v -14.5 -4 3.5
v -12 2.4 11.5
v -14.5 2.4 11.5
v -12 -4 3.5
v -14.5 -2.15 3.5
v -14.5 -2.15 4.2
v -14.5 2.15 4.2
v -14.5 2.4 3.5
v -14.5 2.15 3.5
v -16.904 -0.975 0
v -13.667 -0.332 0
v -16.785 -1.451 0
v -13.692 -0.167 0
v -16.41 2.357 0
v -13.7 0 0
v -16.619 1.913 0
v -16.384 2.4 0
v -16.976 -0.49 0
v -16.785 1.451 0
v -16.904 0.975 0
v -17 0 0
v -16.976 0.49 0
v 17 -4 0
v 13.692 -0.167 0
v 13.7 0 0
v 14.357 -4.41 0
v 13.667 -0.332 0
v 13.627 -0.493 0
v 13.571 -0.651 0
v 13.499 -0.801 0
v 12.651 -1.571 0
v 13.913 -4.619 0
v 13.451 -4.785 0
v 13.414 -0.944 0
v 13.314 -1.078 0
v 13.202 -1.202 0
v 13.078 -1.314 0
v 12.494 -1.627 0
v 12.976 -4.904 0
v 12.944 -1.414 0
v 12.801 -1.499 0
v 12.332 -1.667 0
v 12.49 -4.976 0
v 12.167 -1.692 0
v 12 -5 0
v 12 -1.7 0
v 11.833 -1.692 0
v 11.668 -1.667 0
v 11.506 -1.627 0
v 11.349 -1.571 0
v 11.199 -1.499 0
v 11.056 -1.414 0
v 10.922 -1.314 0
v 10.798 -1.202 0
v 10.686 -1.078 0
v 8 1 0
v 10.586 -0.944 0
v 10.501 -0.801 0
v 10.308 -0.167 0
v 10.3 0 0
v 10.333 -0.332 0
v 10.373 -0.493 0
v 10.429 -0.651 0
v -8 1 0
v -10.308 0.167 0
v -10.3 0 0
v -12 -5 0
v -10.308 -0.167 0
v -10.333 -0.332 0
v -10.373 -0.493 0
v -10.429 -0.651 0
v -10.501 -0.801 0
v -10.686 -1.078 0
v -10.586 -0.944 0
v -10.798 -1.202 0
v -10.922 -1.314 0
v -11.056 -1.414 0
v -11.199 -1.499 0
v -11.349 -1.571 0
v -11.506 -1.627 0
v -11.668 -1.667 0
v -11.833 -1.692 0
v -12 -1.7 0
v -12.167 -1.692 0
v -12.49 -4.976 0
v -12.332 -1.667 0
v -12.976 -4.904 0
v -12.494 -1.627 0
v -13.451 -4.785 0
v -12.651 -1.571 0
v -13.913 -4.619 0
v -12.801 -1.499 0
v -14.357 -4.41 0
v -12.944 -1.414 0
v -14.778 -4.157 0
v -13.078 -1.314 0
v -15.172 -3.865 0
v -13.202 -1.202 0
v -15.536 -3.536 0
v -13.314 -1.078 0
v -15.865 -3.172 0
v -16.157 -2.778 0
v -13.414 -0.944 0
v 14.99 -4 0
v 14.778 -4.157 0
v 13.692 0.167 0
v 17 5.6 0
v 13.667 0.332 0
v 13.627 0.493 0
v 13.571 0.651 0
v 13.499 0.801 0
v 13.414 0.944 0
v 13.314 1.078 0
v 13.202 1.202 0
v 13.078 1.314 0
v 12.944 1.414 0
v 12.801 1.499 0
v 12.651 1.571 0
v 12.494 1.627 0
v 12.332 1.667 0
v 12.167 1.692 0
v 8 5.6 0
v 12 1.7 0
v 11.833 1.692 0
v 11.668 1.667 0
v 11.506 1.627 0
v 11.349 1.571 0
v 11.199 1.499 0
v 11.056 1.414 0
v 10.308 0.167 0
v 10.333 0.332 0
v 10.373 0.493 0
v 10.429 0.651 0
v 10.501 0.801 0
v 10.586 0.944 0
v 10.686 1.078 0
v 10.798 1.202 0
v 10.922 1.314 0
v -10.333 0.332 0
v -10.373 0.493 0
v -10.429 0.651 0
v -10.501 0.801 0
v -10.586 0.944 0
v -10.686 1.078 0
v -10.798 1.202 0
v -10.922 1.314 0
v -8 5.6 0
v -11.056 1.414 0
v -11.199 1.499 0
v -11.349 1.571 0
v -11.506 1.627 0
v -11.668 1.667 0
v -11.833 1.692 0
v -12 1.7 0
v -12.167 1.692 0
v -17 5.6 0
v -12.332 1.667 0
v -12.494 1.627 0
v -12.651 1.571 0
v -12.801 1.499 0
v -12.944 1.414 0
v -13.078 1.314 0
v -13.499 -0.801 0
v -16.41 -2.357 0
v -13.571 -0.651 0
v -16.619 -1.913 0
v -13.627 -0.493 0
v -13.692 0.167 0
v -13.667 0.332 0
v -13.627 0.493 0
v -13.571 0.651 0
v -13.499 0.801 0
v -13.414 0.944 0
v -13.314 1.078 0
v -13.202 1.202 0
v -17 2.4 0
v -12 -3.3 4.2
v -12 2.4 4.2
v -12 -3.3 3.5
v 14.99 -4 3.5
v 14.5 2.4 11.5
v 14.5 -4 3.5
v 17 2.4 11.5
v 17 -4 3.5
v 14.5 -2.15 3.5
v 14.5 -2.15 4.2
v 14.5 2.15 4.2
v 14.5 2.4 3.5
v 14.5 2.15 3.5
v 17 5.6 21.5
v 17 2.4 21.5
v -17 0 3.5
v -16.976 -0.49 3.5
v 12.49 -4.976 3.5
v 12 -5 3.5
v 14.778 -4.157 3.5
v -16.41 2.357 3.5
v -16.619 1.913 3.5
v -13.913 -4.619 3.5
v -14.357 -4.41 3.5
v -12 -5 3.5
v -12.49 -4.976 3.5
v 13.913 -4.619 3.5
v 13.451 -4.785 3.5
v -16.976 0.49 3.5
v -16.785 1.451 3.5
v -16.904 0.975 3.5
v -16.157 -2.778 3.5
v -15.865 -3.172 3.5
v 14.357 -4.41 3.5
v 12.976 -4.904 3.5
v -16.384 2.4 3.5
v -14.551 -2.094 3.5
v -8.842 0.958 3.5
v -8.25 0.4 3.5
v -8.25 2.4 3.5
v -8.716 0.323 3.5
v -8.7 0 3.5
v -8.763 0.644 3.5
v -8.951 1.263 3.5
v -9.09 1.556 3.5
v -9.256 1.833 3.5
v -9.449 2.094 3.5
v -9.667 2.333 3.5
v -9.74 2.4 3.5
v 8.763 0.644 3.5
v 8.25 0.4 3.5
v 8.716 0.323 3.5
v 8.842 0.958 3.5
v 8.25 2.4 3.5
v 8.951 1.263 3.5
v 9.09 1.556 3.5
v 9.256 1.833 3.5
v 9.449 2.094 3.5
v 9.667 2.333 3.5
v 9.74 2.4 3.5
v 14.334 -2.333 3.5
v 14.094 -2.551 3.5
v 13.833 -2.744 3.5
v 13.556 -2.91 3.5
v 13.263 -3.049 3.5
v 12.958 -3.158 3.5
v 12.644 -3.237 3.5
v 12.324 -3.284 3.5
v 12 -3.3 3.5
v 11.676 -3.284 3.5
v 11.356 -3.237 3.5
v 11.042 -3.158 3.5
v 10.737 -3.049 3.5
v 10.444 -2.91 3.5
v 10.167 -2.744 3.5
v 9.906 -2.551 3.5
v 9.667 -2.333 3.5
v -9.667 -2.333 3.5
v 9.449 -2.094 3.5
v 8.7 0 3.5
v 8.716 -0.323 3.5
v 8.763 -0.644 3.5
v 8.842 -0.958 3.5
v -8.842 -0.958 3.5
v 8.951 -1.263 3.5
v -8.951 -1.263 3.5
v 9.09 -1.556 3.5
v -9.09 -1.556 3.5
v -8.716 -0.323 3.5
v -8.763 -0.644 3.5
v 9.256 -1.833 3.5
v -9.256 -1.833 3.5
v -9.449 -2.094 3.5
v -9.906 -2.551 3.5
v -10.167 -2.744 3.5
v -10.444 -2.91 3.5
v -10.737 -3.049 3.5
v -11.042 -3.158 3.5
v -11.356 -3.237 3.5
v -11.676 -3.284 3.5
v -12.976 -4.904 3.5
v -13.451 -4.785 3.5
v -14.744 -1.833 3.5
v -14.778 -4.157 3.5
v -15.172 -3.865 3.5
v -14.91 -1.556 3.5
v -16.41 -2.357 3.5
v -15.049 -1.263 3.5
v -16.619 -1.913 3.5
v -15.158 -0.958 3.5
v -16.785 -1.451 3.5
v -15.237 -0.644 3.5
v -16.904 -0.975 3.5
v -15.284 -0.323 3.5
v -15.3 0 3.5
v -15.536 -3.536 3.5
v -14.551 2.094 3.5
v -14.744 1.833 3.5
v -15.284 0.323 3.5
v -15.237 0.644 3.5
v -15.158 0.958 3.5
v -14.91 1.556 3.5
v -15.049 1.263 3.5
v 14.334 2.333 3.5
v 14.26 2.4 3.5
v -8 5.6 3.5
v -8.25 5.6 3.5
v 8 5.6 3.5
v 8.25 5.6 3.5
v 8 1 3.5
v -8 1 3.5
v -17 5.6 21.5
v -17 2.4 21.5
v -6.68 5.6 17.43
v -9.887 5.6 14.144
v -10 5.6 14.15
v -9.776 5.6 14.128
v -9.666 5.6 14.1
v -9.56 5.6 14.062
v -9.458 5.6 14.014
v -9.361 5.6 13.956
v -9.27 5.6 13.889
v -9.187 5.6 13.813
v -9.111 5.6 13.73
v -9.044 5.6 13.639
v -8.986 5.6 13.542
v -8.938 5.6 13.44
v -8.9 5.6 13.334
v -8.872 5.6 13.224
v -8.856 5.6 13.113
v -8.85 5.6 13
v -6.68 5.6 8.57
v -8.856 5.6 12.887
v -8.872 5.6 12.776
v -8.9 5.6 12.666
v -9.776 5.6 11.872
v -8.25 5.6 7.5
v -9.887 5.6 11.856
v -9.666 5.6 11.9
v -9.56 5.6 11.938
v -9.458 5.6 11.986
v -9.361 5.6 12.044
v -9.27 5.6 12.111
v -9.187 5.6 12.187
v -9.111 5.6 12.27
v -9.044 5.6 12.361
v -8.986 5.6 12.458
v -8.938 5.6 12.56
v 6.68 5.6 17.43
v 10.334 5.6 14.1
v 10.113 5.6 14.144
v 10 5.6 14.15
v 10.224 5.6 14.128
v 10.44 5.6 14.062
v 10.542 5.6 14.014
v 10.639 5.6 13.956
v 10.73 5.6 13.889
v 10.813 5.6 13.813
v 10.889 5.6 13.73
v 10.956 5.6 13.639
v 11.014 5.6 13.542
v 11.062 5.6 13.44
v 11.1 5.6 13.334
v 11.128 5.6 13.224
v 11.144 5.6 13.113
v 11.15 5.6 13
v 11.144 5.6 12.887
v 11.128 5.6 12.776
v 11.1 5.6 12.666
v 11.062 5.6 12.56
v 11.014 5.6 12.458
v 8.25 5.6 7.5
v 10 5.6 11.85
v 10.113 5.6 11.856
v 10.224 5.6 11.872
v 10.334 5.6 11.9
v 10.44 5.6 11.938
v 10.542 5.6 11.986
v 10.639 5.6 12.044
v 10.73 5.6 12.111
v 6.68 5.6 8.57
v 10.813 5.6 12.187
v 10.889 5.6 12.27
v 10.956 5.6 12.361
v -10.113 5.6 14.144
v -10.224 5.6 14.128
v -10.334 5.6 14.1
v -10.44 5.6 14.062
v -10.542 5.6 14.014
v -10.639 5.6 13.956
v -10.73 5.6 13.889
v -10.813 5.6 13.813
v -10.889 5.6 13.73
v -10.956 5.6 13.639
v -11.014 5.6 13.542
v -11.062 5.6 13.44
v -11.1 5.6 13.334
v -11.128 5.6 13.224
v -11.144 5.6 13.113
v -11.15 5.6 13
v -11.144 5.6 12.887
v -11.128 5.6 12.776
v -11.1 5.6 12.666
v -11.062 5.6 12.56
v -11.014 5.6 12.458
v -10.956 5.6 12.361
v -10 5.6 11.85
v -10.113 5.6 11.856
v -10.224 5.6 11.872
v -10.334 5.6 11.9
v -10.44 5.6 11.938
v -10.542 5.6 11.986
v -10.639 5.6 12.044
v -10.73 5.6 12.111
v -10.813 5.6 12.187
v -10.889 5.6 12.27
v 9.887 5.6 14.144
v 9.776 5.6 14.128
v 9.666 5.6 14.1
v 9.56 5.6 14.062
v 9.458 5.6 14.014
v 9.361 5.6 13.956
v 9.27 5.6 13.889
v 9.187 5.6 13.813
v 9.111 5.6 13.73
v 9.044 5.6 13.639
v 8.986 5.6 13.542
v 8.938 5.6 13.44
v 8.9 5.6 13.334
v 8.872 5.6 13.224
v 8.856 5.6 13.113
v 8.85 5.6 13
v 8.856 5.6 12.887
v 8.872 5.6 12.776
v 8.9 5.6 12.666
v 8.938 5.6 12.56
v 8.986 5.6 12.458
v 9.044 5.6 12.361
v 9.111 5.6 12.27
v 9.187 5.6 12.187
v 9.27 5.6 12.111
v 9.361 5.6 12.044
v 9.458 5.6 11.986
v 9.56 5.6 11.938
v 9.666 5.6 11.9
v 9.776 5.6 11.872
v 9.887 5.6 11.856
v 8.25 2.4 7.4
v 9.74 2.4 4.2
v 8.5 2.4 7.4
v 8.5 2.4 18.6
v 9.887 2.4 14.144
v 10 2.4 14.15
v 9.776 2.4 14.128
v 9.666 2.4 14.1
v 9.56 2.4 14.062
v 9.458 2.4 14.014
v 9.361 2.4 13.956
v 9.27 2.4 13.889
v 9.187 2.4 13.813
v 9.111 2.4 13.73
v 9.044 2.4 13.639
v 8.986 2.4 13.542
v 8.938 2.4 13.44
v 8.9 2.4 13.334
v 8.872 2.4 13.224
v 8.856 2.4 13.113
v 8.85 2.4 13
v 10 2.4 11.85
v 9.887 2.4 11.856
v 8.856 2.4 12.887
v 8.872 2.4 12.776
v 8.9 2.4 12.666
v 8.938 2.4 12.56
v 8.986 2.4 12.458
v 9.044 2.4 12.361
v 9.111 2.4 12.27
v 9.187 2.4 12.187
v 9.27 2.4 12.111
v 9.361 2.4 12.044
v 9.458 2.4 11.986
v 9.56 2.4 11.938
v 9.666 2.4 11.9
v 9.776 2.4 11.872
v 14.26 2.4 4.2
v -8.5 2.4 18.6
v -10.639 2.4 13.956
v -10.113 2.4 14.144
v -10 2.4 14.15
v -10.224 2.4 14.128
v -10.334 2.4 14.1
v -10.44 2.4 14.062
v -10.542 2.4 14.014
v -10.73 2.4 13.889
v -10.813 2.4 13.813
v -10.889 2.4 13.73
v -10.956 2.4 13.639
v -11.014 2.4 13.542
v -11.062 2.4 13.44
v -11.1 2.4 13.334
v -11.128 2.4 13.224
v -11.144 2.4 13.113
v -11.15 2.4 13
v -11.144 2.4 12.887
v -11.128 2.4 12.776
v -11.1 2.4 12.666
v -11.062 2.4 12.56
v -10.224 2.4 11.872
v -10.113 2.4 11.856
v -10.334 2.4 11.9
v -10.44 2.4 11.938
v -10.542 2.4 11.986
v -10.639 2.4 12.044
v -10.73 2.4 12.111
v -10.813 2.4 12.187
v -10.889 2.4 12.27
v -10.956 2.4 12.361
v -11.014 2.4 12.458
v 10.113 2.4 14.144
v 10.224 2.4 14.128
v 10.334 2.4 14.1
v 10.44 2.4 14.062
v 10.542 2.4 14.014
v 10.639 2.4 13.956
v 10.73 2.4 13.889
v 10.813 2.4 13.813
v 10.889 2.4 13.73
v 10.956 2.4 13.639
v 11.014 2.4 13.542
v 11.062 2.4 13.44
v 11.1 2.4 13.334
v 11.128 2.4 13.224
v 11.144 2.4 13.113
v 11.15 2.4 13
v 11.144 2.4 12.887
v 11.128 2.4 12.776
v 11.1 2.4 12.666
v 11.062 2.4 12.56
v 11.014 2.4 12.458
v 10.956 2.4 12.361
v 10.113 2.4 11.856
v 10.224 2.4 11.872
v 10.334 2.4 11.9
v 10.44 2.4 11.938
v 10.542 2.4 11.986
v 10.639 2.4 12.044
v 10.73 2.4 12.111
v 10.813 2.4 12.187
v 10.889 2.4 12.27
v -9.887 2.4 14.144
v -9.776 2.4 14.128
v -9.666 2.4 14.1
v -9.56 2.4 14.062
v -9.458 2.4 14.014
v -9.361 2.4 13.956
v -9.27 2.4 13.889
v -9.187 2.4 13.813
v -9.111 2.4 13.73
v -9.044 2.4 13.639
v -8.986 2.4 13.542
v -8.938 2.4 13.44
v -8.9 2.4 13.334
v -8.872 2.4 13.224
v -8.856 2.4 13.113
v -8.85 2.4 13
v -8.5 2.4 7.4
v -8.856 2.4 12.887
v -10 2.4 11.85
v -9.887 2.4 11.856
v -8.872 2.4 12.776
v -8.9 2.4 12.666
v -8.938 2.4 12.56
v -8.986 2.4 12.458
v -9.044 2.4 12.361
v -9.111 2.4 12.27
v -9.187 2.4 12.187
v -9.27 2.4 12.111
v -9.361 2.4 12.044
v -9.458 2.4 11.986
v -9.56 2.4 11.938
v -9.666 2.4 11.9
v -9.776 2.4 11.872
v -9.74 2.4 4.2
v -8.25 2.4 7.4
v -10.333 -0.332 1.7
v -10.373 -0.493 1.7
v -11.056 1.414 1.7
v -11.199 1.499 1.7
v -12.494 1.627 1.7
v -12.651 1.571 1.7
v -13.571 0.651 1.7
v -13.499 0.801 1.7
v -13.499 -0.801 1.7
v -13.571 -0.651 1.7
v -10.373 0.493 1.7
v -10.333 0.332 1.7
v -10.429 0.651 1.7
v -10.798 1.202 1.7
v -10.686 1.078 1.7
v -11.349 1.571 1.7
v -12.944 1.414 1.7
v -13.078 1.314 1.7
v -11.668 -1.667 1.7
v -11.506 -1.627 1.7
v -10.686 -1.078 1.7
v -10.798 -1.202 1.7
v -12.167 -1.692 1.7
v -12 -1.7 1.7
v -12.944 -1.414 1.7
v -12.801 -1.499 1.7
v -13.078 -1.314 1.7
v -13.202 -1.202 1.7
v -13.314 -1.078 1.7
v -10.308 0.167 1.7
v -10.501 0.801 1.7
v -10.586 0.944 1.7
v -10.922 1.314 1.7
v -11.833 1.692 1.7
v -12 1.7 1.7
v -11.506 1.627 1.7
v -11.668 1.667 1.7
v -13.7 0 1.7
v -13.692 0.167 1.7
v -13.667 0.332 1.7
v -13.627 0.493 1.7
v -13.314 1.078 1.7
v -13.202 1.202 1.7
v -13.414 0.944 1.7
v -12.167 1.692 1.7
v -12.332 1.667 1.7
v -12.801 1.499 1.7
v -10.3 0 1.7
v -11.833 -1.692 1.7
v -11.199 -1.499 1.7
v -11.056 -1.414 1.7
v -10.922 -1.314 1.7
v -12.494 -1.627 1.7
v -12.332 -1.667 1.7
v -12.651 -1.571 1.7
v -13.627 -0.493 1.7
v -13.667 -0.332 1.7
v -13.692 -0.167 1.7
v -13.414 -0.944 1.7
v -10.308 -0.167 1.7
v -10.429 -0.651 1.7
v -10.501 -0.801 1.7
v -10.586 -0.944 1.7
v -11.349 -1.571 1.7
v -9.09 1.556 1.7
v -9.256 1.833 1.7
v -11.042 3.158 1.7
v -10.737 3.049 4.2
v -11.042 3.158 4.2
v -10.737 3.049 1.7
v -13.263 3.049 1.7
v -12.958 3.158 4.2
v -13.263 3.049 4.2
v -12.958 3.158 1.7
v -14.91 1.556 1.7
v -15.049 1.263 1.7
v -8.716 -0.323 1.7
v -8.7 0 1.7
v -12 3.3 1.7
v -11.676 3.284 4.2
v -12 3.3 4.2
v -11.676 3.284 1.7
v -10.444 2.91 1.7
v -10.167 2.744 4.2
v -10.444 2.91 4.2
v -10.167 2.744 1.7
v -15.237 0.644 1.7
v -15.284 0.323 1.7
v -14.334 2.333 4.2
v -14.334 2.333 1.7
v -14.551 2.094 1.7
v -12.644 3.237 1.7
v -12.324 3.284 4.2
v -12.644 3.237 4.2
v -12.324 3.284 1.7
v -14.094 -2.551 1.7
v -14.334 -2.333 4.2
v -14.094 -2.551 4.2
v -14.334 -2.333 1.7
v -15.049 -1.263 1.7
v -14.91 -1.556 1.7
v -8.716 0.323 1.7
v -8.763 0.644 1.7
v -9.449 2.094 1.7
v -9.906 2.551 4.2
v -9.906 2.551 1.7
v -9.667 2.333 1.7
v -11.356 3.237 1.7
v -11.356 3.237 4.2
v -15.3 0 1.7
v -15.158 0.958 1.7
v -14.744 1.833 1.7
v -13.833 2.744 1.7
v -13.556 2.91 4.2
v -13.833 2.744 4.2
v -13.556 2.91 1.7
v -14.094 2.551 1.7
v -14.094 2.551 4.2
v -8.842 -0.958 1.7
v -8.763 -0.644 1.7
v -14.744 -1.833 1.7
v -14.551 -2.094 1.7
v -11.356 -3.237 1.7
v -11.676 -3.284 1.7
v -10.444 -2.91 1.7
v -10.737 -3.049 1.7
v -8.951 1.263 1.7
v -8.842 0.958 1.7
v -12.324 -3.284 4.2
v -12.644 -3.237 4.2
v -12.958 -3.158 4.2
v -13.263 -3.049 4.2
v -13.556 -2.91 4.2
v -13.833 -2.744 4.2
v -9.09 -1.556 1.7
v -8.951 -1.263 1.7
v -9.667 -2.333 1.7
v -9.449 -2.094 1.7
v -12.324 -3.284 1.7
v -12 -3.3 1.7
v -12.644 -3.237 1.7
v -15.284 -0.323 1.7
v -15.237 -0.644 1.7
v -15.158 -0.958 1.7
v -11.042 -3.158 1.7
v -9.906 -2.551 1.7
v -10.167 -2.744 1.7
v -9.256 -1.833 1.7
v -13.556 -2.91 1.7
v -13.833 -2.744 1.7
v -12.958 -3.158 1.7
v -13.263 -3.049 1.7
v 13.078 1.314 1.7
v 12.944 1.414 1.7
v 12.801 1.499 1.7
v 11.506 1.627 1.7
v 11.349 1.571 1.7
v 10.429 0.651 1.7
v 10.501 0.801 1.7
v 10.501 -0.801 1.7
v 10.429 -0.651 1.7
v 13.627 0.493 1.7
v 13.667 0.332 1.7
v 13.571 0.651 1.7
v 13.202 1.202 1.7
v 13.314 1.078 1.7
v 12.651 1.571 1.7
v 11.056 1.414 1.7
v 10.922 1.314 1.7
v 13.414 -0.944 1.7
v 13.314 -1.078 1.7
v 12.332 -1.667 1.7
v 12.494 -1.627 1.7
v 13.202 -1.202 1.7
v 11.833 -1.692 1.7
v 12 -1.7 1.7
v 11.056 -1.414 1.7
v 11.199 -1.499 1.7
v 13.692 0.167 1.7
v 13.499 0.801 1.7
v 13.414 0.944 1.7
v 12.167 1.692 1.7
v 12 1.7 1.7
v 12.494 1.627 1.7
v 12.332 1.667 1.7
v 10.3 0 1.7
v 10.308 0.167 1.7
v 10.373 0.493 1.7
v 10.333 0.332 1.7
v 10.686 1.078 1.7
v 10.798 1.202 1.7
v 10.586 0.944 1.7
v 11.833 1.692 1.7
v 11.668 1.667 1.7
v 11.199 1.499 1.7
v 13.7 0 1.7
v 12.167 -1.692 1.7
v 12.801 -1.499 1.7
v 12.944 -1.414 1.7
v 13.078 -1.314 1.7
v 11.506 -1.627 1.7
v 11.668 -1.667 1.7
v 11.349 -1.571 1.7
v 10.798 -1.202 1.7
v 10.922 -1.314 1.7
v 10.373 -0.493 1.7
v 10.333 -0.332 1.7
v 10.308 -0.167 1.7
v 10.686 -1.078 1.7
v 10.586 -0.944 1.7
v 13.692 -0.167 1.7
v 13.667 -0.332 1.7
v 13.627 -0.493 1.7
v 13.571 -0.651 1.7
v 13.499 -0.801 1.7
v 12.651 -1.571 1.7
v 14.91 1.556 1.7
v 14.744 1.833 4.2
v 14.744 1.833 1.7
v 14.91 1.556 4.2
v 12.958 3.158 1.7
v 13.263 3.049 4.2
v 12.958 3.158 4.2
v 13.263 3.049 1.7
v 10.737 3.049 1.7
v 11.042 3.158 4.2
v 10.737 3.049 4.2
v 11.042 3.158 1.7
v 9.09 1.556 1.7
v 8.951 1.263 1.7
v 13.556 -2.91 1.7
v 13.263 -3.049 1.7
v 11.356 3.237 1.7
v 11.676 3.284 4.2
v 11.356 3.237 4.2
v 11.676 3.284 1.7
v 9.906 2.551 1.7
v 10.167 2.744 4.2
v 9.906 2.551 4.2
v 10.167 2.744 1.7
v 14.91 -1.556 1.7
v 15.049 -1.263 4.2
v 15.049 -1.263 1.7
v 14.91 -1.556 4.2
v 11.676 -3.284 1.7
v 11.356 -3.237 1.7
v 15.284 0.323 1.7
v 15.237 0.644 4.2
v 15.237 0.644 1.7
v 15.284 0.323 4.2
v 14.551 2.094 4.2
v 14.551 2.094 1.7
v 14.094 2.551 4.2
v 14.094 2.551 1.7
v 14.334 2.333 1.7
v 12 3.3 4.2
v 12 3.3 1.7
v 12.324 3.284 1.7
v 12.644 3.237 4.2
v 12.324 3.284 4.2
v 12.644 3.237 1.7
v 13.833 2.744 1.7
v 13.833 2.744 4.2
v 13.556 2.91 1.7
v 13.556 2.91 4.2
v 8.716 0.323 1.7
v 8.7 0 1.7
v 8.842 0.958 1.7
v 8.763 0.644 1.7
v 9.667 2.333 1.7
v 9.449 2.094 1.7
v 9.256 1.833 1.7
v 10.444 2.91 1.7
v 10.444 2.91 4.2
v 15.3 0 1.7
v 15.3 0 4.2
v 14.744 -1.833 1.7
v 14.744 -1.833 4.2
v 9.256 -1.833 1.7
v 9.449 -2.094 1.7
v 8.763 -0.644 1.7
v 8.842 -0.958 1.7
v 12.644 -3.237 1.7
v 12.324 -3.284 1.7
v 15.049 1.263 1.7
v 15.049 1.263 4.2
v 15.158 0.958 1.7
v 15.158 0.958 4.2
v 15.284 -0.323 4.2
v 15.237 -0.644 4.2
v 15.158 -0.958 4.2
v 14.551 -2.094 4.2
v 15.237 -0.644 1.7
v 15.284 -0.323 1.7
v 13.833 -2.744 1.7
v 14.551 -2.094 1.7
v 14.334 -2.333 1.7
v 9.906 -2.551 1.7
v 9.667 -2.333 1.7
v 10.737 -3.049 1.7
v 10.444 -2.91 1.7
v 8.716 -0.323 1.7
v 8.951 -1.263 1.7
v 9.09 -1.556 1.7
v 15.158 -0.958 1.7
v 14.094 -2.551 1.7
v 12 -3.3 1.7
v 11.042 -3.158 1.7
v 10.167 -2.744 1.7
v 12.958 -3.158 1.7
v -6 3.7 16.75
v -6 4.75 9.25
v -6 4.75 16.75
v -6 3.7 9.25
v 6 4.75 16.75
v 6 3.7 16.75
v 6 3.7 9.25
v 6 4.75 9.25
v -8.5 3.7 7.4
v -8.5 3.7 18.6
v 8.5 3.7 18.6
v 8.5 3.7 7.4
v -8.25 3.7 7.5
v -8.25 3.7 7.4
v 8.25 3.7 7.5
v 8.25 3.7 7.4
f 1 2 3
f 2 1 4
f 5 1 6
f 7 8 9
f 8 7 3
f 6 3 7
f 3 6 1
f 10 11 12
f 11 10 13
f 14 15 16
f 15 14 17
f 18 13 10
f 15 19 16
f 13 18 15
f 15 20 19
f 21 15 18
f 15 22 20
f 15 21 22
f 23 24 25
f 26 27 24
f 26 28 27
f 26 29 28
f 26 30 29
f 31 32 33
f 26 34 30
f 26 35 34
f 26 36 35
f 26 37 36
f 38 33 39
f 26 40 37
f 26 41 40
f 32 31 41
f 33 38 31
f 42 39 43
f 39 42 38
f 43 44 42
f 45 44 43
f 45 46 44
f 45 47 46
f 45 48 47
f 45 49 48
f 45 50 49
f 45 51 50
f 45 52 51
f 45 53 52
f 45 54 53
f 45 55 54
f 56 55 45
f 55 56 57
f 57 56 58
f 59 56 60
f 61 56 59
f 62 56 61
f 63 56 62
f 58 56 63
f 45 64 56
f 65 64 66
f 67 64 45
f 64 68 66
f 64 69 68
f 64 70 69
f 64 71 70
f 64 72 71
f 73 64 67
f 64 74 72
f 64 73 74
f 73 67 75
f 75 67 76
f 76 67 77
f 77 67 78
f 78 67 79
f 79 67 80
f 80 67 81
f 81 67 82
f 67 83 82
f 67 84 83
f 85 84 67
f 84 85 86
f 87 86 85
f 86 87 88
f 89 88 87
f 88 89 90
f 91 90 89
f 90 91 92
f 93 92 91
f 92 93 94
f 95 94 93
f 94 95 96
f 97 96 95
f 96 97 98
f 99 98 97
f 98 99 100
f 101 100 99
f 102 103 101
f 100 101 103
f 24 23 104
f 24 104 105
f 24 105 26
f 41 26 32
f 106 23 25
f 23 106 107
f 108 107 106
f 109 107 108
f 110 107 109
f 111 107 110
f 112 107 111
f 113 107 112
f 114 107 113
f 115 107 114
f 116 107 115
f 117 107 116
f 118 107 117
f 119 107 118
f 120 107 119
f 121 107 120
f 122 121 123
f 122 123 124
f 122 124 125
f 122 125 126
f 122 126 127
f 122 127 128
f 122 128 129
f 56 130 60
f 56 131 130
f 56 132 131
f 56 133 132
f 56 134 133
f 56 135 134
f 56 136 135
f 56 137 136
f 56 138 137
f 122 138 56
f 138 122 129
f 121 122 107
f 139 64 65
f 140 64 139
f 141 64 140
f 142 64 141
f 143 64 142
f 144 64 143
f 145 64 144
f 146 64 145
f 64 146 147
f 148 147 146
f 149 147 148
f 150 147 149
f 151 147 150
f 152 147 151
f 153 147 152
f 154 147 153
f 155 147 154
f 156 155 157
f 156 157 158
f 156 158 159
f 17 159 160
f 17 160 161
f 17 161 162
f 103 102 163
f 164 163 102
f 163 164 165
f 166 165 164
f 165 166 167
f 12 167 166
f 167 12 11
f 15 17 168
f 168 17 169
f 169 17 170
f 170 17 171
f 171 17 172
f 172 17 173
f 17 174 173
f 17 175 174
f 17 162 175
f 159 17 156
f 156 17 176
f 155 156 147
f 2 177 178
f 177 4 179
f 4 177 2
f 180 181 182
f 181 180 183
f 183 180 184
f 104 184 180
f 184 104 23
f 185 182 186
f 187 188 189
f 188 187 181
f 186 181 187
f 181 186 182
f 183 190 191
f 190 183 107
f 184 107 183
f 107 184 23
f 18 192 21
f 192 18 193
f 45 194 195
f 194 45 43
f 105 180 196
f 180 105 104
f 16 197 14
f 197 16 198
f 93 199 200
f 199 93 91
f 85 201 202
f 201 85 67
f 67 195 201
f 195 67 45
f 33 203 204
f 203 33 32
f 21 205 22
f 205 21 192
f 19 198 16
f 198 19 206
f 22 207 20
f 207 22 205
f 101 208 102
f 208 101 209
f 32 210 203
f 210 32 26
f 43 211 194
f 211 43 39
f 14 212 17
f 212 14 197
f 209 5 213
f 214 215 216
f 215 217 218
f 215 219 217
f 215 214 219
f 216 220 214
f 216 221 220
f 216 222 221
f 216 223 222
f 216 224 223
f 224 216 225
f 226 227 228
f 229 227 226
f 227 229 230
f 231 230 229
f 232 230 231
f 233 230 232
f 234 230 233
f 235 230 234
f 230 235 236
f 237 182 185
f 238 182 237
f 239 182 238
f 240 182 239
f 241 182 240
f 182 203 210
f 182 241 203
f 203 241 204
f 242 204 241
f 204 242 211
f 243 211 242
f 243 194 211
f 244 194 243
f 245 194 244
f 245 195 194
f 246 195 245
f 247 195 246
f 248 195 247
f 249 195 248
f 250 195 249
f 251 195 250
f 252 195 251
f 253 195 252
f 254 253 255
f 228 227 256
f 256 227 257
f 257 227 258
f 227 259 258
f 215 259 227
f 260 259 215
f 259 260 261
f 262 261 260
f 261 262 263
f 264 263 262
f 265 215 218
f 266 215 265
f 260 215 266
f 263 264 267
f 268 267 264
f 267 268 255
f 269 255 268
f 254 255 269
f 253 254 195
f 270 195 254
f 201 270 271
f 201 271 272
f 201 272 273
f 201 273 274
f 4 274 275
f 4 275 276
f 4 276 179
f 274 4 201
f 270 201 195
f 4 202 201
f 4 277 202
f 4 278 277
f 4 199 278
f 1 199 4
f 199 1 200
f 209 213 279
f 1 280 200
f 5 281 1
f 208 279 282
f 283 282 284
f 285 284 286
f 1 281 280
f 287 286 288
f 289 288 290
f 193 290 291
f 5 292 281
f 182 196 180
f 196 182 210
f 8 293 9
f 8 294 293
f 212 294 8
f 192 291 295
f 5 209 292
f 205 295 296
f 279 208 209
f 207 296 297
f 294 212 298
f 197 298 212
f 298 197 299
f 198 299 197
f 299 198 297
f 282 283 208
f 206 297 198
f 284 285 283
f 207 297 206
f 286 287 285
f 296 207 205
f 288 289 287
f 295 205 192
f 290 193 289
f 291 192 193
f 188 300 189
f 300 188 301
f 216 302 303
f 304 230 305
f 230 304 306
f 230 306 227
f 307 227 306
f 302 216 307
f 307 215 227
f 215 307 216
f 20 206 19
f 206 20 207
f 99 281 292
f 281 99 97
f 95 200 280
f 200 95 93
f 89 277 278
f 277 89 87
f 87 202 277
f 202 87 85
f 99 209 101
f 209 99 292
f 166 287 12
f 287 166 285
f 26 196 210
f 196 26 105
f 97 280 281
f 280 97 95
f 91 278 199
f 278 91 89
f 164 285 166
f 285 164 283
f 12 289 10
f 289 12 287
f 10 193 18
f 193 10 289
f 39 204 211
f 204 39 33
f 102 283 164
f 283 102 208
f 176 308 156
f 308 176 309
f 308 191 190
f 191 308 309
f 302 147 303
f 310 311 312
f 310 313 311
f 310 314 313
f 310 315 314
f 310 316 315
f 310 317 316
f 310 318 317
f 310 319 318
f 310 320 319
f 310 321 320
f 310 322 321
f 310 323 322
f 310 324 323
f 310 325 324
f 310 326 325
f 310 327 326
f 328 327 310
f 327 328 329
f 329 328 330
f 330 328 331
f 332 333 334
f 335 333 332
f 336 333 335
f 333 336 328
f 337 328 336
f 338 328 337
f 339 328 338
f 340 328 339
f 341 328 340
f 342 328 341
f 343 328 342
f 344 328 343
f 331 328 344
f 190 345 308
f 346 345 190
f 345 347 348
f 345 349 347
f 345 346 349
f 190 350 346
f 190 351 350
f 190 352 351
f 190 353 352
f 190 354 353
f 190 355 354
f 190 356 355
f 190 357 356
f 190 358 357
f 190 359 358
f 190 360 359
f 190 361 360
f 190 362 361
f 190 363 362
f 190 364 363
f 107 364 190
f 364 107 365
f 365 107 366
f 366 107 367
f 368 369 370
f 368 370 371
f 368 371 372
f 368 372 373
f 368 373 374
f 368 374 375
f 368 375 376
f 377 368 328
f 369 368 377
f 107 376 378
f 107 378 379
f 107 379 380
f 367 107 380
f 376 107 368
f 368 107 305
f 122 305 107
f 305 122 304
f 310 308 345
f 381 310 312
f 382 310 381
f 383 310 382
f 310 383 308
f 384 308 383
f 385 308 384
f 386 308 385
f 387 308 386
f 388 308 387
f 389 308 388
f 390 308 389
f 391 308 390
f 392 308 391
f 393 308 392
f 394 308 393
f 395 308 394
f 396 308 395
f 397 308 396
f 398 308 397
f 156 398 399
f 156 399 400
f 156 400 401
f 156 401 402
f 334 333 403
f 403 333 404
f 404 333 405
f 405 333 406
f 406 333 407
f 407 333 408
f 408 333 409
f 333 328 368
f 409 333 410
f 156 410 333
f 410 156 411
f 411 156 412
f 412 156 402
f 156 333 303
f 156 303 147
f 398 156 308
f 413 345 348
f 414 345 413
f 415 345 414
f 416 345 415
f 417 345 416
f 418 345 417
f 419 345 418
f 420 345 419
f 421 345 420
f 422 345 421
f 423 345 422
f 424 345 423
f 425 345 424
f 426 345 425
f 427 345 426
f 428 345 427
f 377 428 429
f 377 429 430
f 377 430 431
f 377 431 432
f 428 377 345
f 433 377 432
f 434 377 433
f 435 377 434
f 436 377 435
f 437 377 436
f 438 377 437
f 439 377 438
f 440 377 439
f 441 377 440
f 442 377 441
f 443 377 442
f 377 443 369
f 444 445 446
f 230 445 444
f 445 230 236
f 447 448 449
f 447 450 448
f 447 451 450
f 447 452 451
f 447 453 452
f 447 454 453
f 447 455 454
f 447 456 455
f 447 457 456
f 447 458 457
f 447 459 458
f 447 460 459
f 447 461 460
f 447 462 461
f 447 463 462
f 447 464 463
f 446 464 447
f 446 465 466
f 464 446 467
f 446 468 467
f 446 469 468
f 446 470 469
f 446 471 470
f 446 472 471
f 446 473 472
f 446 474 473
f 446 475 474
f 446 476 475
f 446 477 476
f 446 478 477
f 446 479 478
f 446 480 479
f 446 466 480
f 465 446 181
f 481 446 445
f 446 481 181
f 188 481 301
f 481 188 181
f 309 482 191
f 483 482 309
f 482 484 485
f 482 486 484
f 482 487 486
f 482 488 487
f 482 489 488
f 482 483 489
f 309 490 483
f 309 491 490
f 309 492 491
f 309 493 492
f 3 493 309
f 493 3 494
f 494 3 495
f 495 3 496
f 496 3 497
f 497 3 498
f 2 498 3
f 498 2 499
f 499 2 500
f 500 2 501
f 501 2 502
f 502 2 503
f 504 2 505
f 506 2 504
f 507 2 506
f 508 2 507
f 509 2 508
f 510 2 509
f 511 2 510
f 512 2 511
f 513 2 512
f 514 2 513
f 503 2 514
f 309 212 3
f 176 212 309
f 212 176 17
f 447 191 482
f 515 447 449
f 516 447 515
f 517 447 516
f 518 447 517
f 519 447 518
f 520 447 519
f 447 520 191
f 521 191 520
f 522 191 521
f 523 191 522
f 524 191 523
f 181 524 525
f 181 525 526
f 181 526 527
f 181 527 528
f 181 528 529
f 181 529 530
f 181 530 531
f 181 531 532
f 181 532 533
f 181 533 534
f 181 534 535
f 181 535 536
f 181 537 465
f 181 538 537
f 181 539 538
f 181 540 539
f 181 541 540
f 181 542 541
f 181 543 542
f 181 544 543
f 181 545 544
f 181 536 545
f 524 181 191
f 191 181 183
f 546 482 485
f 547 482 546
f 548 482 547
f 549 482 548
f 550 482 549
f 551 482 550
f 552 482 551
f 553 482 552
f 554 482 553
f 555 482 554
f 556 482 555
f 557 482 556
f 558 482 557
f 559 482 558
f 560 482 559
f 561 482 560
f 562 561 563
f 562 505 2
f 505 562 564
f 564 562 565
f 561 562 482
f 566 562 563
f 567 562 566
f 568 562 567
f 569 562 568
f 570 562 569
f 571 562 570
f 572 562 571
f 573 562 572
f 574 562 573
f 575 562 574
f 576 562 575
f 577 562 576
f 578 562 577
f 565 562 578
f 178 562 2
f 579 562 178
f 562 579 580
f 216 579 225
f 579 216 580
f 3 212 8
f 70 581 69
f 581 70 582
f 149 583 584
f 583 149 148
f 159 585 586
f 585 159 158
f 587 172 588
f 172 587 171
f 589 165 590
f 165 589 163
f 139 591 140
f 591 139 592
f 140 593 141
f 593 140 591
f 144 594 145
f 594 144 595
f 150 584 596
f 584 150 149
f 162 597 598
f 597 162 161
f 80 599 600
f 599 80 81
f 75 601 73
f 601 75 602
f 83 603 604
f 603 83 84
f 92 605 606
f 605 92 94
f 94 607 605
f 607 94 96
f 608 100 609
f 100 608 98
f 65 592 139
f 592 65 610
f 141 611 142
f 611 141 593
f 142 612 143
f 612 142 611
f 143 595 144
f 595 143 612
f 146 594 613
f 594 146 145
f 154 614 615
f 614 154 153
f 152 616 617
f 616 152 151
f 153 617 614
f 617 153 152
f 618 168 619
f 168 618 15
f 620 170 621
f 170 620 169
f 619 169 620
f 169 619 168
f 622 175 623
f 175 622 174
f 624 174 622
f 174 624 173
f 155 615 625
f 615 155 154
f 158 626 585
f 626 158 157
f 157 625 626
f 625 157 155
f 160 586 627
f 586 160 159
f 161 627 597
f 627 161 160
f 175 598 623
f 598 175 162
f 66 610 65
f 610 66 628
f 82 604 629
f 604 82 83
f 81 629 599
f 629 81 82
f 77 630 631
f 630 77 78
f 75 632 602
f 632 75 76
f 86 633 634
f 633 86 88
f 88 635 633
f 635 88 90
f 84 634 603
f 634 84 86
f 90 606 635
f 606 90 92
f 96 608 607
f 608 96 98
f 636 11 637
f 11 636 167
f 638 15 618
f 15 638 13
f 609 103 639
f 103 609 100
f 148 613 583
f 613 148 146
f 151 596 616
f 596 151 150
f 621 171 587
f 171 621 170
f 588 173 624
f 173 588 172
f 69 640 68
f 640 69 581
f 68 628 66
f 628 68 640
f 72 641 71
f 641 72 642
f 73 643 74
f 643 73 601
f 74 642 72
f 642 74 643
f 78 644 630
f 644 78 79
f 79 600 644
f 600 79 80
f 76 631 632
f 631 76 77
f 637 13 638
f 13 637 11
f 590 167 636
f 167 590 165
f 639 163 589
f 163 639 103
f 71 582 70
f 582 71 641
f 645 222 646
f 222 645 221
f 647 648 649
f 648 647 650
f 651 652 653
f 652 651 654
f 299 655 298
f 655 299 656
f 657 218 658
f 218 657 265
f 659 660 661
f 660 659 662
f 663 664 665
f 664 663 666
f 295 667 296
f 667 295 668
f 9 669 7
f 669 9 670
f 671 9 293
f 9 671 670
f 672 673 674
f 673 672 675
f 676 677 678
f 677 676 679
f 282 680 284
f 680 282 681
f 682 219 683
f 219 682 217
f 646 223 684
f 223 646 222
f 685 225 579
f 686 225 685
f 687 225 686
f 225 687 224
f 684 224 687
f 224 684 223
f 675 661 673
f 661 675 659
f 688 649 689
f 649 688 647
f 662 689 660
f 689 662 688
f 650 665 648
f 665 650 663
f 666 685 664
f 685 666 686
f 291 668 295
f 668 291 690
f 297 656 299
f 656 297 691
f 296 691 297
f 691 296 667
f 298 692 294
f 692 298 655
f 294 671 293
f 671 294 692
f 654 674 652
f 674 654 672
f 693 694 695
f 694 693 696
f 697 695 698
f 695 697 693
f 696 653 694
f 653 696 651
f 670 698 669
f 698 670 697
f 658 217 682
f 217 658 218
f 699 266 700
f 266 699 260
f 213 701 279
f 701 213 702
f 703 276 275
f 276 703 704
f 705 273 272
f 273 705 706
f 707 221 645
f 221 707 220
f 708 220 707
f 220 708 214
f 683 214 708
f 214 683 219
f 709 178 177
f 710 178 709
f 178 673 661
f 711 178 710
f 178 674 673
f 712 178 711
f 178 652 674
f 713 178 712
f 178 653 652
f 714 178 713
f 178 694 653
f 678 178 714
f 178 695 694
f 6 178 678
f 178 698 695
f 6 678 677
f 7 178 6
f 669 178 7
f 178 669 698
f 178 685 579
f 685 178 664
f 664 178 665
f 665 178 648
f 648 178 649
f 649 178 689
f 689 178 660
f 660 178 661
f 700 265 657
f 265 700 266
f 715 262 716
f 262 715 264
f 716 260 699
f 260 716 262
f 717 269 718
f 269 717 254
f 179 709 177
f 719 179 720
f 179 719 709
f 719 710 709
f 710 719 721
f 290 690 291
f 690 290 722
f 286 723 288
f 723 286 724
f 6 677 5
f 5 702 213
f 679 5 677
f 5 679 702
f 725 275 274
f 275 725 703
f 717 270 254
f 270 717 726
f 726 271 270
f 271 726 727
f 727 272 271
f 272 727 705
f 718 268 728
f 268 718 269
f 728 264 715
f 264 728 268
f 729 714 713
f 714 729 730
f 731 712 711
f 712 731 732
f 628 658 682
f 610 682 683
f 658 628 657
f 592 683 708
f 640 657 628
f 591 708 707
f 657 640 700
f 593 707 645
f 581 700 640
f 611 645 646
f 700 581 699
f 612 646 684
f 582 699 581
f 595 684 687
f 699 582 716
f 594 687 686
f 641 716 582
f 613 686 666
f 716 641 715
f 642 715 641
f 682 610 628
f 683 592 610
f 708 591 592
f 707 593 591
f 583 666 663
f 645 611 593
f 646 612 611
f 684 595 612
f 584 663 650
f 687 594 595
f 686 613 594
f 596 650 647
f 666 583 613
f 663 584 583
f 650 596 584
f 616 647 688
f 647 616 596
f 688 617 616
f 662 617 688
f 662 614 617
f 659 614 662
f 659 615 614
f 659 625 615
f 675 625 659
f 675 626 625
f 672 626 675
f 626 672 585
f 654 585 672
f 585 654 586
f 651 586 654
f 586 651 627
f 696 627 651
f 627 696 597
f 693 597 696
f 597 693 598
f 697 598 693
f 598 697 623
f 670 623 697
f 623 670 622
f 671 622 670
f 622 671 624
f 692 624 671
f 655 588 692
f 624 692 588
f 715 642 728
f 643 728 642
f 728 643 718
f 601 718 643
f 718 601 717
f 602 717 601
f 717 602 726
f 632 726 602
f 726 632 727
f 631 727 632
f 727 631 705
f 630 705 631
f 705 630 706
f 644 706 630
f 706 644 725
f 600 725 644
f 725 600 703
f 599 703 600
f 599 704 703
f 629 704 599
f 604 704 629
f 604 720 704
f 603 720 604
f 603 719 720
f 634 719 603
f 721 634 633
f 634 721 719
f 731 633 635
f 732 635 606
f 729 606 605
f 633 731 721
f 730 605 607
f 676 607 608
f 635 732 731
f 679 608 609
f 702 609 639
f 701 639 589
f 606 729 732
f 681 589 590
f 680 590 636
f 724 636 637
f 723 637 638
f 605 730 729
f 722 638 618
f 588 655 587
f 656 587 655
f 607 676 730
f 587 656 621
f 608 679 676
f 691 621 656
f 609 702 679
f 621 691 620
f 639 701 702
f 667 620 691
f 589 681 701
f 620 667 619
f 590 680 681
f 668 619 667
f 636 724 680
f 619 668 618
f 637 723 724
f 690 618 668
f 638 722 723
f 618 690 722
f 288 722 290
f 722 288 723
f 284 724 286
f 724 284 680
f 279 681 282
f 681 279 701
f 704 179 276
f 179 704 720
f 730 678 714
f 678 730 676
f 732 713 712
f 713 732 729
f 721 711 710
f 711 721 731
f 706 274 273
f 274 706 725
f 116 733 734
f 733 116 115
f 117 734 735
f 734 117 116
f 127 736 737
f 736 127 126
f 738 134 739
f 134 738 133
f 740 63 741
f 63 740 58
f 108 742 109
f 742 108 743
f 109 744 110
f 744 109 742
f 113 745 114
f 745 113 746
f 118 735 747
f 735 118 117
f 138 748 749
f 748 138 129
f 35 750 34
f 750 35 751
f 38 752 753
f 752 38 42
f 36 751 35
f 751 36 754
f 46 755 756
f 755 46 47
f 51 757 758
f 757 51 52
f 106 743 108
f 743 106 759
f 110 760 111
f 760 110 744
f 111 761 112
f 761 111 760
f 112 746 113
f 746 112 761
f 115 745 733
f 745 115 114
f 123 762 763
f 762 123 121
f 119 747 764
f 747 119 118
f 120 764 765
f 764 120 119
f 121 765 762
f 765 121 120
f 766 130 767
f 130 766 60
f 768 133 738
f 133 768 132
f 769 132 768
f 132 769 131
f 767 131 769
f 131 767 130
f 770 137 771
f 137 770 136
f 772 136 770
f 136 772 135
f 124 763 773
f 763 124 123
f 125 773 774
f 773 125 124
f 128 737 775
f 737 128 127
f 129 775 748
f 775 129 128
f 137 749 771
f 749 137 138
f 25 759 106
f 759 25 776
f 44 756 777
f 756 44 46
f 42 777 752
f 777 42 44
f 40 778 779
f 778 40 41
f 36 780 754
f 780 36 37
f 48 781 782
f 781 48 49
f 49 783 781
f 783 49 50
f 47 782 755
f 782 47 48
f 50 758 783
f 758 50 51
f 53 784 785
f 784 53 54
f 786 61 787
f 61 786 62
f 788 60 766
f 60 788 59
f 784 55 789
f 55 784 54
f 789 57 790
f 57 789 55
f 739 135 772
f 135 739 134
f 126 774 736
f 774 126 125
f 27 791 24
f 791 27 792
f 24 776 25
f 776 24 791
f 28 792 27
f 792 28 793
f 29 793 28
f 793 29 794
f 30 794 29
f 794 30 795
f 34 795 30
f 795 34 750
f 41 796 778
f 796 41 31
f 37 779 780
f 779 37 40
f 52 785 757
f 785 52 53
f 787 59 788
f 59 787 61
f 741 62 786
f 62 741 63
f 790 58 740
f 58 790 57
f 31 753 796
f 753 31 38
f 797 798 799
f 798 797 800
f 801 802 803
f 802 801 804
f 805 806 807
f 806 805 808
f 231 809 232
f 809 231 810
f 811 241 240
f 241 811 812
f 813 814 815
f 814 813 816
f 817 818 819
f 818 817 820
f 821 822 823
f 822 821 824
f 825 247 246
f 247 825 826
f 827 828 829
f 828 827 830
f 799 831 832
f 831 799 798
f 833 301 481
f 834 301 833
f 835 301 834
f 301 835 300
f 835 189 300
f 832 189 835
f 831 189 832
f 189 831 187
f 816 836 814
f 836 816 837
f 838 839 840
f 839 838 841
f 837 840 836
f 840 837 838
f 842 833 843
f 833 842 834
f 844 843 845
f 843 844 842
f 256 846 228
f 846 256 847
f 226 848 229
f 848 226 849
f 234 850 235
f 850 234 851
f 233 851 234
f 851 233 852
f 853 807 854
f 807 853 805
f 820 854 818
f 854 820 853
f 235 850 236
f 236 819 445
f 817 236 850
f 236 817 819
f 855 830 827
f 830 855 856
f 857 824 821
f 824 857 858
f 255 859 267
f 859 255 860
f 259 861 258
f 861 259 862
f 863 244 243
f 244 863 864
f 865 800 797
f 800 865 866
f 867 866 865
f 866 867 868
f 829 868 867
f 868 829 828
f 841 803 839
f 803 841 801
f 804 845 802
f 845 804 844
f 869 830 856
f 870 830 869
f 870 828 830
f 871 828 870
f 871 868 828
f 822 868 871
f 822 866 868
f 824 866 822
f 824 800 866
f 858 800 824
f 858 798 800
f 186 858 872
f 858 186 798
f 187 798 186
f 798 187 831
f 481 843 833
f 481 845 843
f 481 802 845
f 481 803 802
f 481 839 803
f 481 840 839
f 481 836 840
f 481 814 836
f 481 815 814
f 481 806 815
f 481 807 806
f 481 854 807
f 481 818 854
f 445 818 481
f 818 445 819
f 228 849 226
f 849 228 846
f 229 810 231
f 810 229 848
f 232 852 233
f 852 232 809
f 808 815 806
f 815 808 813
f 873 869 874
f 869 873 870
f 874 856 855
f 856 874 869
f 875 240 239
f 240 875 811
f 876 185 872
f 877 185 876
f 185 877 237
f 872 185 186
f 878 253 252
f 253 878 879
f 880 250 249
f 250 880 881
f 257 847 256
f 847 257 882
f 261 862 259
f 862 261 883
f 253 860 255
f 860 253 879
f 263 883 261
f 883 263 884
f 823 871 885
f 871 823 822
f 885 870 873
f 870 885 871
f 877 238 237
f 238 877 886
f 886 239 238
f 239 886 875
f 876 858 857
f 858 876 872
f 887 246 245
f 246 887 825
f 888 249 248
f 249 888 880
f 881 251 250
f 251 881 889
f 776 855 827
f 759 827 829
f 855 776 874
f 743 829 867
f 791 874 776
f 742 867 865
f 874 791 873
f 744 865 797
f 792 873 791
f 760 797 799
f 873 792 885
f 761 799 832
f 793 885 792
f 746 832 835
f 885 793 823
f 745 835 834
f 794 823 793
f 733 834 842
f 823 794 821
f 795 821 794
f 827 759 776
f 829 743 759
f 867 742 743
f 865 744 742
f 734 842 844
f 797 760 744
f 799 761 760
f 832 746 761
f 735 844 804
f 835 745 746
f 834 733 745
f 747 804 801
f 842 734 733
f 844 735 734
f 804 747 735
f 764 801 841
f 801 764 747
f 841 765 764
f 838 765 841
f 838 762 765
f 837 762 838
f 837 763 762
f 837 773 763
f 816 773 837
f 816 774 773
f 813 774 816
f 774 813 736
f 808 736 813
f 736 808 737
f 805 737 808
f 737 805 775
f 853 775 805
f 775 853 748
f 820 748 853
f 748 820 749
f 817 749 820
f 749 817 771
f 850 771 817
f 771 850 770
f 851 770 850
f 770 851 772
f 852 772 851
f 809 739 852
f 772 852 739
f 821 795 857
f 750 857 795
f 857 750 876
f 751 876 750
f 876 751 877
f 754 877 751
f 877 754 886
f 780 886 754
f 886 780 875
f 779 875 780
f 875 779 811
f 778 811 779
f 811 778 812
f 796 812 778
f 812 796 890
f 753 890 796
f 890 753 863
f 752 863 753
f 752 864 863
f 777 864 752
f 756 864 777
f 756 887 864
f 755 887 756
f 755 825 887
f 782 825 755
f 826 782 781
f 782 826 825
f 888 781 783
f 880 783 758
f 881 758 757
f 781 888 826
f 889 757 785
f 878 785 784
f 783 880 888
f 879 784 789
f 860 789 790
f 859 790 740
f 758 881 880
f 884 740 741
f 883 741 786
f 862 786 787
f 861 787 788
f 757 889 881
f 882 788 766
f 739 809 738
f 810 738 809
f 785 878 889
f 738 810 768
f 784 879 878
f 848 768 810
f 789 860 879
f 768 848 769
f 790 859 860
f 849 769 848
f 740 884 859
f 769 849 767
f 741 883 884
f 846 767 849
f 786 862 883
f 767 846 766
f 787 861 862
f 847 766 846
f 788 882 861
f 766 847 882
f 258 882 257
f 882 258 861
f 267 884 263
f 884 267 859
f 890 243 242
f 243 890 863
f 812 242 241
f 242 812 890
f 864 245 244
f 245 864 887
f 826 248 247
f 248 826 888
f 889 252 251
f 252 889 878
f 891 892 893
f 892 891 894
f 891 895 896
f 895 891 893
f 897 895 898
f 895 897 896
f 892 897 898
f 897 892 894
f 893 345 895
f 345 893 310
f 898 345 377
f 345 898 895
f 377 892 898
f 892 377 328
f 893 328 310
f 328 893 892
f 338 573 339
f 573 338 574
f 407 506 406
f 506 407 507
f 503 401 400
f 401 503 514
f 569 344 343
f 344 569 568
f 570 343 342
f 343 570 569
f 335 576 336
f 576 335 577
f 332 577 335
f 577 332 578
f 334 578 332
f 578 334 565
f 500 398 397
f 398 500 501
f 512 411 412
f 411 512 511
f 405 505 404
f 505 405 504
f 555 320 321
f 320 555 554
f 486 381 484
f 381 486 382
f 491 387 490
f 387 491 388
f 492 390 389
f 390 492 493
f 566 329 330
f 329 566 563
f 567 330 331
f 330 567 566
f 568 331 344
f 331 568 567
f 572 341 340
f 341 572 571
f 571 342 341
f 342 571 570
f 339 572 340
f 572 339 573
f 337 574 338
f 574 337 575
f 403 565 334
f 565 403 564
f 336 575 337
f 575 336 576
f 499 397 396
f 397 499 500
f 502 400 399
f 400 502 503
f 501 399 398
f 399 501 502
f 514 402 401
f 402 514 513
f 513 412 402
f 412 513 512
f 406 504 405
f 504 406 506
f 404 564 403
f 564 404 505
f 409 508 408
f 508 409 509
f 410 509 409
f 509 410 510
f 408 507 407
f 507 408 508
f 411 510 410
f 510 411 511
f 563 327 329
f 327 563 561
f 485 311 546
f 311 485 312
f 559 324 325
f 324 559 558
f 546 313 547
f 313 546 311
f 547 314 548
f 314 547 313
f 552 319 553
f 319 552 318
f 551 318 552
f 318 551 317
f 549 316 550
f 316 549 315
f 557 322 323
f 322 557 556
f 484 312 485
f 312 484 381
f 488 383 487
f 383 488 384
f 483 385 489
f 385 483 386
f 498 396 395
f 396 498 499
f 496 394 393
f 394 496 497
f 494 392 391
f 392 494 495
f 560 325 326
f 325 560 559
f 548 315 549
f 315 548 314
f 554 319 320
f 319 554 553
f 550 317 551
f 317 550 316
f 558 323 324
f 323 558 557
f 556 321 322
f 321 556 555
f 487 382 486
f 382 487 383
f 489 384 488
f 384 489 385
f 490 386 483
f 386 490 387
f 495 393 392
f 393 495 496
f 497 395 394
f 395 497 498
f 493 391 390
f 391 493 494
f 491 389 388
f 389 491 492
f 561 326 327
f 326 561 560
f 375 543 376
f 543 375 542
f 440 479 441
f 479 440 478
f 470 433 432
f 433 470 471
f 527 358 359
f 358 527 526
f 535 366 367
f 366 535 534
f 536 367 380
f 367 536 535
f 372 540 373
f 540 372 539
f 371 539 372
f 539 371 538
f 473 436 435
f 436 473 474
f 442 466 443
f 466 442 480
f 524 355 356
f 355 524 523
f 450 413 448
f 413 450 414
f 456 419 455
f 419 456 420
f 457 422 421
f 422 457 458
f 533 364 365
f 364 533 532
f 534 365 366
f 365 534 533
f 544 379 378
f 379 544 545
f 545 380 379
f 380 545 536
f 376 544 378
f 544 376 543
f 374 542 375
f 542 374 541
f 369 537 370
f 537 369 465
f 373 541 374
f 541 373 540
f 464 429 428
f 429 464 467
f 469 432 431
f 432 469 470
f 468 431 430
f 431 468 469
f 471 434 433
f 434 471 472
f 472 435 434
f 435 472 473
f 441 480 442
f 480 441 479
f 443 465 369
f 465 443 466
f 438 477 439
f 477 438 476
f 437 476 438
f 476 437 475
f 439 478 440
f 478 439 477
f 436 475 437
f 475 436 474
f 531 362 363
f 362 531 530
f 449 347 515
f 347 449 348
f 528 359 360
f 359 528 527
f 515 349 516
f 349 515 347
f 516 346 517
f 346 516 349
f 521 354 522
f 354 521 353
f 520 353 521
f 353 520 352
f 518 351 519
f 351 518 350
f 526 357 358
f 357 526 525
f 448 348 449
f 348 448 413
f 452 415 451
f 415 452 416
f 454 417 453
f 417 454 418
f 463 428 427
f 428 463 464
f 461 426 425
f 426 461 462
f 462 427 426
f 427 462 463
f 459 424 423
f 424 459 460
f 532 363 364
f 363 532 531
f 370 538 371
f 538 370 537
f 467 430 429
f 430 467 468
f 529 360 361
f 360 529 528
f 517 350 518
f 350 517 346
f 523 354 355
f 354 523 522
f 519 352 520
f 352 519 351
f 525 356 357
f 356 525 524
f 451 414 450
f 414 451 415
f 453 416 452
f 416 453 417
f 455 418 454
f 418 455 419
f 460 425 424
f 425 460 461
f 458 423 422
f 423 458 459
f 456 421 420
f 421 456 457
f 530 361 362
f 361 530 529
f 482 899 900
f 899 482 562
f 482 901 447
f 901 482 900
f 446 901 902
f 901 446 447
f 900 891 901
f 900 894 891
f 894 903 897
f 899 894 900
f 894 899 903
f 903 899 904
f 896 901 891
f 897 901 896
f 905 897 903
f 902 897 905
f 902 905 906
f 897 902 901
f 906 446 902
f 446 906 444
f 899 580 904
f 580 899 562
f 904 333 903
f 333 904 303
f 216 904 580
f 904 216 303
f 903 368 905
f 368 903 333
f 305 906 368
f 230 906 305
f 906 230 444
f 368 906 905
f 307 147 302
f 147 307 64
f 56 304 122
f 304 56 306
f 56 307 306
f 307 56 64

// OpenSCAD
$fn = 64;

// ====================================================================
// THÔNG SỐ HÌNH HỌC HỆ THỐNG
// ====================================================================

// 1. Hệ 2 ống tròn Ø8.0 mm
rod_D       = 8.25;         // Đường kính kẹp ôm ống Ø8.0mm (+0.25mm dung sai ôm khít)
rod_CC      = 56.0;         // Khoảng cách tâm - đến - tâm (C-C) = 56.0mm (X = -28.0 và +28.0)
rod_out     = 64.0;         // Mép ngoài - ngoài = 64.0mm (tại X = -32.0 và +32.0)
rod_in      = 48.0;         // Mép trong - trong = 48.0mm (tại X = -24.0 và +24.0)

// 2. Bo Luckfox Pico Max / Pro
pcb_L       = 72.0;         // Chiều dài PCB Luckfox (mm) (X = -36.0 .. +36.0)
pcb_W       = 21.0;         // Chiều rộng PCB Luckfox (mm) (Y = -10.5 .. +10.5)
pcb_T       = 1.6;          // Độ dày PCB (mm)

cav_L       = 72.8;         // Chiều dài hốc chứa PCB (+0.8mm dung sai)
cav_W       = 21.6;         // Chiều rộng hốc chứa PCB (+0.6mm dung sai)

// 3. Chân GPIO Luckfox (40 chân quay xuống dưới)
gpio_L      = 50.8;         // Chiều dài 2 hàng chân 20x1 (X = -35.2 .. +15.6)
gpio_H      = 11.5;         // Độ sâu chân thò xuống dưới PCB (mm)
gpio_Y      = 8.89;         // Khoảng cách tâm 2 hàng chân (Y = -8.89 và +8.89)

// 4. Module Cảm biến ToF VL53L5CX V2
tof_pcb_L   = 24.7;         // Chiều dài tổng thể PCB gồm 2 tai bắt ốc (mm)
tof_pcb_H   = 10.5;         // Chiều cao thân PCB (mm)
tof_pcb_T   = 1.2;          // Độ dày PCB ToF (mm)
tof_hole_CC = 20.0;         // Khoảng cách tâm 2 lỗ ốc M2 = 20.0mm (X = -10.0 và +10.0)
tof_hole_D  = 2.3;          // Đường kính lỗ ốc M2 (mm)
tof_sensor_W = 6.4;         // Kích thước mắt cảm biến (mm)
tof_sensor_H = 3.0;

// Các hàm bổ trợ hình học chuẩn FDM
module rounded_box_z(lx, ly, lz, r=2.4) {
    hull() {
        for (sx = [-1, 1])
            for (sy = [-1, 1])
                translate([sx*(lx/2 - r), sy*(ly/2 - r), 0])
                    cylinder(r=r, h=lz);
    }
}

// Hốc tán M3 chuẩn FDM: d=6.6mm ($fn=6 -> s=5.72mm) tránh kẹt tán do co ngót
module m3_nut_trap(h=3.5) {
    cylinder(d=6.6, h=h, $fn=6);
}

// Hốc tán M2 chuẩn FDM: d=4.9mm ($fn=6 -> s=4.25mm) lọt êm tán M2 (s=4.0mm)
module m2_nut_trap(h=2.5) {
    cylinder(d=4.9, h=h, $fn=6);
}

// ====================================================================
// CHI TIẾT 04: GIÁ GÁ CẢM BIẾN TOF VL53L5CX V2 (CHĨA THẲNG TRƯỚC)
// - Bắt chắc vào 2 vấu mặt trước khung Open-Frame bằng 2 vít M3 (C-C = 24.0mm).
// - Mặt dựng gắn module ToF VL53L5CX V2 (dài 24.7mm, 2 lỗ M2 cách nhau đúng 20.0mm).
// - Cửa sổ thông quang 12.0 x 7.5mm vát mép 45° không che chắn FoV 63°.
// - Có hốc lùi 1.2mm cho linh kiện SMD mặt sau bo ToF.
// - KHE THOÁT CÁP DUPONT 16x6mm Ở ĐÁY: cho phép cắm đầu cos Dupont cái thẳng
//   vào hàng chân 6-pin của cảm biến ToF mà không bị cấn chân đế.
// - Gân gia cường tam giác dày 2.5mm (đạt chuẩn >= 2.4mm).
// - Hốc tán M2 d=4.9mm (s=4.25mm) lắp vừa khít không cần ép nhiệt.
// - In phẳng tại Z = 0, 0% Support!
// ====================================================================

module part_04_vl53l5cx_v2_sensor_bracket() {
    base_L    = 34.0;       // Dài chân đế (mm)
    base_W    = 10.0;       // Rộng chân đế bắt vào khung (mm)
    base_H    = 3.5;        // Độ dày chân đế (mm)
    face_H    = 18.0;       // Chiều cao mặt dựng gắn ToF (mm)
    face_T    = 3.2;        // Độ dày mặt dựng (mm)

    difference() {
        union() {
            // 1. Chân đế ngang bắt vít M3 vào khung (nằm tại Z = 0 .. base_H)
            hull() {
                for (sx = [-1, 1])
                    translate([sx*12.0, 0, 0])
                        cylinder(d=base_W, h=base_H);
            }

            // 2. Mặt dựng đứng gắn cảm biến ToF (Z = base_H .. base_H + face_H)
            translate([-base_L/2, -face_T/2 + base_W/2 - 1.0, 0])
                cube([base_L, face_T, base_H + face_H]);

            // 3. Ke gia cường tam giác 2 bên sườn (dày 2.5mm >= 2.4mm)
            for (sx = [-1, 1]) {
                hull() {
                    translate([sx*(base_L/2 - 2.5), -base_W/2 + 1.0, 0])
                        cube([2.5, 1.0, base_H]);
                    translate([sx*(base_L/2 - 2.5), base_W/2 - 1.0, 0])
                        cube([2.5, 1.0, base_H + 10.0]);
                }
            }
        }

        // A. 2 Lỗ ốc M3 bắt vào khung (X = ±12.0mm, Y = 0)
        for (sx = [-1, 1]) {
            translate([sx*12.0, 0, -0.5])
                cylinder(d=3.4, h=base_H + 1.0);
            // Hốc chìm đầu ốc M3 (d=6.6mm)
            translate([sx*12.0, 0, base_H - 1.8])
                cylinder(d=6.6, h=2.5);
        }

        // B. CỬA SỔ QUANG HỌC TOF (X = 0, Z = base_H + 9.5mm)
        //    Kích thước 12.0 x 7.5mm, vát côn 45° về phía trước để đảm bảo FoV 63°
        y_face = base_W/2 - 1.0;
        translate([0, y_face, base_H + 9.5]) {
            // Lỗ thông quang xuyên suốt
            cube([12.0, face_T + 4.0, 7.5], center=true);

            // Vát mép mở rộng 45°
            hull() {
                translate([0, 1.0, 0])
                    cube([12.0, 0.5, 7.5], center=true);
                translate([0, 3.5, 0])
                    cube([16.0, 0.5, 11.5], center=true);
            }
        }

        // C. 2 LỖ BẮT VÍT M2 CHO TAI MODULE VL53L5CX V2 (C-C = 20.0mm chuẩn)
        //    Tại X = -10.0mm và X = +10.0mm, Z = base_H + 9.5mm
        for (sx = [-1, 1]) {
            translate([sx*(tof_hole_CC/2), y_face, base_H + 9.5]) {
                rotate([-90, 0, 0])
                    cylinder(d=tof_hole_D, h=face_T + 4.0, center=true);
                // Hốc tán M2 lục giác (d=4.9mm, s=4.25mm) ở mặt sau
                translate([0, -face_T/2 - 0.1, 0])
                    rotate([90, 0, 0])
                        m2_nut_trap(h=2.5);
            }
        }

        // D. HỐC LÙI SÂU 1.2mm CHO MỐI HÀN VÀ LINH KIỆN SMD MẶT SAU BO TOF
        //    (Kích thước 17.0 x 11.2mm)
        translate([0, y_face - face_T/2 + 0.6, base_H + 9.5])
            cube([17.0, 1.4, 11.2], center=true);

        // E. KHE THOÁT CHÂN HEADER 6-PIN TRÊN VÁCH DỰNG (Z = base_H .. base_H + 3.0)
        translate([0, y_face, base_H + 2.0])
            cube([16.5, face_T + 4.0, 4.0], center=true);

        // F. KHE THOÁT CÁP DUPONT 16x6mm XUYÊN QUA ĐẾ (Z = -0.5 .. base_H + 1.0)
        //    Giúp đầu cắm Dupont cái thẳng cắm từ dưới lên cực kỳ thuận tiện
        translate([-8.0, y_face - 3.0, -0.5])
            cube([16.0, 6.0, base_H + 1.0]);
    }
}

part_04_vl53l5cx_v2_sensor_bracket();
